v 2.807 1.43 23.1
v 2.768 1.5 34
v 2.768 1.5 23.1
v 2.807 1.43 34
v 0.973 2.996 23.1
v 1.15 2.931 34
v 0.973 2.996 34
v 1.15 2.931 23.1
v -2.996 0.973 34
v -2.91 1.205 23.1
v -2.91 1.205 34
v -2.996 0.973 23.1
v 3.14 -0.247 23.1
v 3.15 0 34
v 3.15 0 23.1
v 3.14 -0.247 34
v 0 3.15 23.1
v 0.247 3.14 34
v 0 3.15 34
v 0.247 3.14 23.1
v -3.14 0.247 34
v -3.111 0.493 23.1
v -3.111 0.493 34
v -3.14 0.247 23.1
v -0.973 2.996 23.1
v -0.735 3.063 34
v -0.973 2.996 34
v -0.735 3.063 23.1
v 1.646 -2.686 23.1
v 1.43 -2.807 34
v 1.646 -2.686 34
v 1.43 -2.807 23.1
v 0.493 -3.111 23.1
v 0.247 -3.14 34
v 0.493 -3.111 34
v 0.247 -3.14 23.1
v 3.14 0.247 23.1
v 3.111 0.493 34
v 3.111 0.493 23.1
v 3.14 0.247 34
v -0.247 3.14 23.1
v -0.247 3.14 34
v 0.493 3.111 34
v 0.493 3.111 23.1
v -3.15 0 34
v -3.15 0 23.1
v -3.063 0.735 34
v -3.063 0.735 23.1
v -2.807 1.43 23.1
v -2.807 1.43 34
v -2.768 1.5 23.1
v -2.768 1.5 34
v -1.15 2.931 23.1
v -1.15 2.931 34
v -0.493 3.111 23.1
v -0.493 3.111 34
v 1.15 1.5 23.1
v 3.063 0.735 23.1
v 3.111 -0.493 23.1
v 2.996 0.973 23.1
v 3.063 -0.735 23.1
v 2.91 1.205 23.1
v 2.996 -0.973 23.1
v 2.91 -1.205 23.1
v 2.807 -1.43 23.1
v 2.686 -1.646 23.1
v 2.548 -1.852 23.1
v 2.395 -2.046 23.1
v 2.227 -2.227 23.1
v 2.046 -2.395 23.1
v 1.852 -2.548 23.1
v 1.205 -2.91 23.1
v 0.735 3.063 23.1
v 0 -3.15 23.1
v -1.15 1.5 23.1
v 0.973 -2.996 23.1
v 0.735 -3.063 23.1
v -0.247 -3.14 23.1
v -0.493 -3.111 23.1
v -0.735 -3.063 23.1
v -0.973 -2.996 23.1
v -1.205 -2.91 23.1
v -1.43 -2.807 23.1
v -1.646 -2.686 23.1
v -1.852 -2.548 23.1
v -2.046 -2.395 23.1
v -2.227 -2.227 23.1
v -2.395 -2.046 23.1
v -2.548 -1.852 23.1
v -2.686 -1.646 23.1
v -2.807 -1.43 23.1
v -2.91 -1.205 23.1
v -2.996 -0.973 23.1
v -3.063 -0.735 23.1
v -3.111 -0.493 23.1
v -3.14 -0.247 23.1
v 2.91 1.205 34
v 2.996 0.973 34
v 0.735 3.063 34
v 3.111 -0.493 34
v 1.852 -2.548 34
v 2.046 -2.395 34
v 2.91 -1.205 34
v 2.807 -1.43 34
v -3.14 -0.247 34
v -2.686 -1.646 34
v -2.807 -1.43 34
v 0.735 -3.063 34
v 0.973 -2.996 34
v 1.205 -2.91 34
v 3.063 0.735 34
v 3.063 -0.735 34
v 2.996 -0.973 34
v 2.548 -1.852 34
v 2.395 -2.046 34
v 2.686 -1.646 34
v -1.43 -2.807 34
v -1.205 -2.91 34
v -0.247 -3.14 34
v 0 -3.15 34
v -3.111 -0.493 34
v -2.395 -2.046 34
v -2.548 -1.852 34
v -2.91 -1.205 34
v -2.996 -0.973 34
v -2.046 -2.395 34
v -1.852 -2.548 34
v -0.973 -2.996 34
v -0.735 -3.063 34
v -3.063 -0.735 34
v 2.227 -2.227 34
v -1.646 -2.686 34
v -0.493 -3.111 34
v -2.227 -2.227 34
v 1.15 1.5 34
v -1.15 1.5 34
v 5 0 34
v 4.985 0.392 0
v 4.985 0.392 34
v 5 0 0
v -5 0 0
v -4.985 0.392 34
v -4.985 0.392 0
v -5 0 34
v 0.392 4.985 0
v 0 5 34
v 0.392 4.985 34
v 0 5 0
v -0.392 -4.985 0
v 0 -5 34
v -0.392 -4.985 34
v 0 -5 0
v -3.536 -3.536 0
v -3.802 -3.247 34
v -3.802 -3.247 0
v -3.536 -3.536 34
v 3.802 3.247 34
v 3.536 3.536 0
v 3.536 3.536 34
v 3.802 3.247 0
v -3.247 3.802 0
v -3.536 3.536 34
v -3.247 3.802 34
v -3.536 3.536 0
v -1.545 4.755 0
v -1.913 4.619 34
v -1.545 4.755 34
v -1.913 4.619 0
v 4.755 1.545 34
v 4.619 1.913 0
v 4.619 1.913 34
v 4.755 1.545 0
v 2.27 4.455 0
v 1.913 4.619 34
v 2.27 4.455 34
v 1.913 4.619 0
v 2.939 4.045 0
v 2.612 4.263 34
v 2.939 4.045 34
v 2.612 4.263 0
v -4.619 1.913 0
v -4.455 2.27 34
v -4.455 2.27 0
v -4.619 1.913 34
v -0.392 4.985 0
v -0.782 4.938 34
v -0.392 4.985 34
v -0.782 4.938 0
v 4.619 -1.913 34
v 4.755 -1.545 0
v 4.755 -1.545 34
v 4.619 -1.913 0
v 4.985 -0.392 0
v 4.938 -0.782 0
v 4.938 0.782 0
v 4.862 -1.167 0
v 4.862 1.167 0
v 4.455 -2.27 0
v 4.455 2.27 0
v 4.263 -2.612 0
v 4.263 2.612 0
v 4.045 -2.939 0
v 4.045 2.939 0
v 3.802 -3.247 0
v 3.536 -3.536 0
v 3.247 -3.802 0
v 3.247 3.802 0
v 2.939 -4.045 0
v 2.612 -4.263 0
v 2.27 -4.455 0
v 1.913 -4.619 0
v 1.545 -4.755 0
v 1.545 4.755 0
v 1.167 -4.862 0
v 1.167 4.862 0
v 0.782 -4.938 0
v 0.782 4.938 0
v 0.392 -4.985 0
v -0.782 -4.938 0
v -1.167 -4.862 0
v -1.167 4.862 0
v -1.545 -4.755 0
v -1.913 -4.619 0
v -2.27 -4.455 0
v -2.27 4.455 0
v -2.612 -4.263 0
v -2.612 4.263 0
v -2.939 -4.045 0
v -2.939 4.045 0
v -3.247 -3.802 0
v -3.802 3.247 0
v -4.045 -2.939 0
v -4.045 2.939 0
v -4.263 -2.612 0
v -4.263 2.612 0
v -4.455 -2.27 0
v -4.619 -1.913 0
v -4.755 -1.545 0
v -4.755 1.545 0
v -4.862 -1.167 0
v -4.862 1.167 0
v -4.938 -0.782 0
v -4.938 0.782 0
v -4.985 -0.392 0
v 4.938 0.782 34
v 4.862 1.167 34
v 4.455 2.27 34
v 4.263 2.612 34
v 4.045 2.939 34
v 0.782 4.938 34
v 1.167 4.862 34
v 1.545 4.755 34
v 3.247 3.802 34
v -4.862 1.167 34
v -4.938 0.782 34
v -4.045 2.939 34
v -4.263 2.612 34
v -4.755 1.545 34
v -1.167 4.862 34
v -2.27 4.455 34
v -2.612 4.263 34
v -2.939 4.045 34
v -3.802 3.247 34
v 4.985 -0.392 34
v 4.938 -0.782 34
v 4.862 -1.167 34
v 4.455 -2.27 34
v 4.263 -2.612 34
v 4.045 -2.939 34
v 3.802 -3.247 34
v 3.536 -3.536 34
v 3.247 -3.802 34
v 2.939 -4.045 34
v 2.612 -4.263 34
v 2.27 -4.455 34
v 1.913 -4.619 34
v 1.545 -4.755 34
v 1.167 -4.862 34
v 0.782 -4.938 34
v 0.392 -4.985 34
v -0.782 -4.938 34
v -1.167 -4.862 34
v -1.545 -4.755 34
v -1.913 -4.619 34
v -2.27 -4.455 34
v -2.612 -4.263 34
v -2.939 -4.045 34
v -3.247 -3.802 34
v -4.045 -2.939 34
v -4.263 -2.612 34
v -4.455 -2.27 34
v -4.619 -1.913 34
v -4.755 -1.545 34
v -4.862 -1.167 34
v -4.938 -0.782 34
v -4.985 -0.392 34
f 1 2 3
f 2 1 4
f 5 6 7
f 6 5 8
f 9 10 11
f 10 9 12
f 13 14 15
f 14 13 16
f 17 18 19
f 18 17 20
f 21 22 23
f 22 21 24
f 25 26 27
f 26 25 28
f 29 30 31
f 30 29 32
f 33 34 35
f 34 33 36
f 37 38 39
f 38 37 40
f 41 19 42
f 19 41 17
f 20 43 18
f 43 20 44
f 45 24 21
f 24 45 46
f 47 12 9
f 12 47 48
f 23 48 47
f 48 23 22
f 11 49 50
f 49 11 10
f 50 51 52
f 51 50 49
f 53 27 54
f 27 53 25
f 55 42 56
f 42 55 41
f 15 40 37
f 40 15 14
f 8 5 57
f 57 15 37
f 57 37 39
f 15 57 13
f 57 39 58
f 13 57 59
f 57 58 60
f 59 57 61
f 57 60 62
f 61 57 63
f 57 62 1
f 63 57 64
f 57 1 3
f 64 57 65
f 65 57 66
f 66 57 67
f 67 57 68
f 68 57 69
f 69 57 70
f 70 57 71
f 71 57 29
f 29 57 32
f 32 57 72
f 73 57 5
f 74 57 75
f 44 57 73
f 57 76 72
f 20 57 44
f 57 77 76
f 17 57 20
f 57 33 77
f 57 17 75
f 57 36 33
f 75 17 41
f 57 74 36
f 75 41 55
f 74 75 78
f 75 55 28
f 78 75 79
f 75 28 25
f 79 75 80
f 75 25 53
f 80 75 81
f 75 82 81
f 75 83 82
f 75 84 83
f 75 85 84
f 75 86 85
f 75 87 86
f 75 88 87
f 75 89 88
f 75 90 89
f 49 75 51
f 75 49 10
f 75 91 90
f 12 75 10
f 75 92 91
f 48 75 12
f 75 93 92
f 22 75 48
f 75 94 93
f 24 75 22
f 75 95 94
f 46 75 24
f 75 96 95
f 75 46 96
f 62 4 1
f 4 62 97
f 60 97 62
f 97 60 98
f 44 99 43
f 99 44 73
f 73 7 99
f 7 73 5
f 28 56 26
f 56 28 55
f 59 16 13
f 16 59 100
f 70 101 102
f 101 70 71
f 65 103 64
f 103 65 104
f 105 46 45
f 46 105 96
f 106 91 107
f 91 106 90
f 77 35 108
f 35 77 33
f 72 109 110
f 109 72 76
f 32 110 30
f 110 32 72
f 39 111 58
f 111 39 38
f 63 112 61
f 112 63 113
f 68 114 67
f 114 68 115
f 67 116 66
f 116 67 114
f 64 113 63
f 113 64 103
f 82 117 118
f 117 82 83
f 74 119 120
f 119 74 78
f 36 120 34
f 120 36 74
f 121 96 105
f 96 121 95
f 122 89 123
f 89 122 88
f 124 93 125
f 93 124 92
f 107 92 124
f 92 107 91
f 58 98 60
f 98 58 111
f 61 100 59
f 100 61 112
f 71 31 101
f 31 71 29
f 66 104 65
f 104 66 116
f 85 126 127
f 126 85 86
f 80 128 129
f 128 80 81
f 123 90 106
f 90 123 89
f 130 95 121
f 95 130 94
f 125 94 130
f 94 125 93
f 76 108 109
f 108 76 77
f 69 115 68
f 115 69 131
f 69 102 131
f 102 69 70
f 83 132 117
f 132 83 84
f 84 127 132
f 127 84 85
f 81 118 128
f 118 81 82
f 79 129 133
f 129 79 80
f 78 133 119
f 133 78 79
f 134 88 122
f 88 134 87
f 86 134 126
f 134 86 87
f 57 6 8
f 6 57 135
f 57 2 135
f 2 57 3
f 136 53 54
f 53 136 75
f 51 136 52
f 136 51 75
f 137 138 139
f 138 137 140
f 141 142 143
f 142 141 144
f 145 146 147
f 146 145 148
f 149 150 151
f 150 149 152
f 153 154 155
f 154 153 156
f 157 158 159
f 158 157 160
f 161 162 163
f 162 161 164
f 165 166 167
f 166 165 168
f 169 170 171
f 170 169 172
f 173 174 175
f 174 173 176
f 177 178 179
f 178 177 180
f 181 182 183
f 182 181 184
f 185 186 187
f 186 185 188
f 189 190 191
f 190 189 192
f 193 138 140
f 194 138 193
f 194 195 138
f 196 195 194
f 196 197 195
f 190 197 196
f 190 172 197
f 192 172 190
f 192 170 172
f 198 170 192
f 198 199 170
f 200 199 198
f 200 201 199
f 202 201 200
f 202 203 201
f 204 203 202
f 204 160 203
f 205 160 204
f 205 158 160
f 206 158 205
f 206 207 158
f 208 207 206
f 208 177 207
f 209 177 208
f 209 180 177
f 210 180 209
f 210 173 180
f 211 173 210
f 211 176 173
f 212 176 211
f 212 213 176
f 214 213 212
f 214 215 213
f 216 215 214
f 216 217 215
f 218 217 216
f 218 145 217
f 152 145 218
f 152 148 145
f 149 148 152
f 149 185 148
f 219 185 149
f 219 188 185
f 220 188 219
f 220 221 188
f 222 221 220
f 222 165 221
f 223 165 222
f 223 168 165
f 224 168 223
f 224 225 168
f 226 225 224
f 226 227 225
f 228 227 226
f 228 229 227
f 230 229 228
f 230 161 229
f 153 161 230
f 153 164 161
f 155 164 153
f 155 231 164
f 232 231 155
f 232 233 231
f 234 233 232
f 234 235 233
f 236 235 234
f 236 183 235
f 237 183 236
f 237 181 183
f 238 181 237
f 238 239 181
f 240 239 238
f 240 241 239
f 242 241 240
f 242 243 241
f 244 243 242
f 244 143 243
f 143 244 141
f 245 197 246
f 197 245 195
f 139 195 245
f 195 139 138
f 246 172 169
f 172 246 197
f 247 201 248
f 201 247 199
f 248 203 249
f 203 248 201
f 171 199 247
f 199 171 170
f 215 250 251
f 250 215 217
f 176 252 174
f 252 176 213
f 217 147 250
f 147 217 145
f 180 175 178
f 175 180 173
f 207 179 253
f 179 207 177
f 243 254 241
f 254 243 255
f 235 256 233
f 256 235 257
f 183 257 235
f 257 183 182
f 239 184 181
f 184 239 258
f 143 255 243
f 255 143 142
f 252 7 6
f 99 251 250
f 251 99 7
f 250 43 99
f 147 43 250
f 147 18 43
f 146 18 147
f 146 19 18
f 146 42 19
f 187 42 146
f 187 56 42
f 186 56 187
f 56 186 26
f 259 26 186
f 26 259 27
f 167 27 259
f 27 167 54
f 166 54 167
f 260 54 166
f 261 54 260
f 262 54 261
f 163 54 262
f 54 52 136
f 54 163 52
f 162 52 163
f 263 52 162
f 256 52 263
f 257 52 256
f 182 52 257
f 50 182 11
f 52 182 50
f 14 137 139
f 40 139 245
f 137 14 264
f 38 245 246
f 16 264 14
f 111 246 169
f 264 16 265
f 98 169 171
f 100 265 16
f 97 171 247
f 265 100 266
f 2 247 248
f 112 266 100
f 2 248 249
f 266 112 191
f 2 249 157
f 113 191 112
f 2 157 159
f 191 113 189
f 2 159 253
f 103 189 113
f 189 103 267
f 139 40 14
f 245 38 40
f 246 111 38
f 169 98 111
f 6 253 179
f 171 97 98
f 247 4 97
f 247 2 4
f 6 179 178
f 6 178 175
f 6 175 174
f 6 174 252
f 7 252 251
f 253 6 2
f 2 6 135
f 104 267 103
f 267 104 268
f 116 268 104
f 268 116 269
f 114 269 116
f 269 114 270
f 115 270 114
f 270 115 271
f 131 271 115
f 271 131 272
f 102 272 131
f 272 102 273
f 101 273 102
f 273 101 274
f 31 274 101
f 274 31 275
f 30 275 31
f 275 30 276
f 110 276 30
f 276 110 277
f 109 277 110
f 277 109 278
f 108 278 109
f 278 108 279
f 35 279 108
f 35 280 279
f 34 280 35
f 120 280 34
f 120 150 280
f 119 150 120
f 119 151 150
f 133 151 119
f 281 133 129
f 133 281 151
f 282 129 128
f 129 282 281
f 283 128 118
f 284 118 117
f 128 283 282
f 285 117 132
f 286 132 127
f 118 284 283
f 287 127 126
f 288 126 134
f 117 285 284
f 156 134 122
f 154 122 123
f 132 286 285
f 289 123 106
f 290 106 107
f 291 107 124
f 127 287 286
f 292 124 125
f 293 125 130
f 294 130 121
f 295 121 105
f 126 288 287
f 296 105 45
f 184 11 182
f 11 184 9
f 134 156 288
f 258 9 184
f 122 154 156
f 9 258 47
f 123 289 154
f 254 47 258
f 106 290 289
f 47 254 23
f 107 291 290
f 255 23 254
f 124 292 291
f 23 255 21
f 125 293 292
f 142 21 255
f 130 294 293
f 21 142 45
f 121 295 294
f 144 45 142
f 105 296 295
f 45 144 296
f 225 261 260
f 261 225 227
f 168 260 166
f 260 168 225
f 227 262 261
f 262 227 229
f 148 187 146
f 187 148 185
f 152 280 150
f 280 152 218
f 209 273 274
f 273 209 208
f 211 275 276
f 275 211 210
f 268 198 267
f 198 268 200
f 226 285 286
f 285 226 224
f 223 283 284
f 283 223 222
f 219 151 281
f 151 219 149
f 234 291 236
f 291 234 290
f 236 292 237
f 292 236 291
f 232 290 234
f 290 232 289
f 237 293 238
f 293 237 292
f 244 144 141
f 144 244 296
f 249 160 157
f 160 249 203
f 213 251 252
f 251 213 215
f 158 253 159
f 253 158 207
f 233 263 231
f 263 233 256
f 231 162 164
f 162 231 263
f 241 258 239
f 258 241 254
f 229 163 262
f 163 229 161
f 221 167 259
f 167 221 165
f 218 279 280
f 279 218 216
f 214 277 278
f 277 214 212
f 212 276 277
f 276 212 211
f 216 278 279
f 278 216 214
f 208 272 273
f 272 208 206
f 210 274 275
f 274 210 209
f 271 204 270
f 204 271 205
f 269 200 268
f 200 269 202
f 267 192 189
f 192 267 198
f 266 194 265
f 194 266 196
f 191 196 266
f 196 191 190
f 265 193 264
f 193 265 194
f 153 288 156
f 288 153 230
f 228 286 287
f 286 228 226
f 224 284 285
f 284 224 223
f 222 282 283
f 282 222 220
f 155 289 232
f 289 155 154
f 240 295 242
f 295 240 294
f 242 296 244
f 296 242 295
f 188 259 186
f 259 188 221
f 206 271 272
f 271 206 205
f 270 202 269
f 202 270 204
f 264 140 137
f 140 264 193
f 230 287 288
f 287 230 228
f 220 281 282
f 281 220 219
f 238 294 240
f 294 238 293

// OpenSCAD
$fn = 80;

difference() {
// cylinder outer dimension
cylinder(h=34, d=10);

// center cutout
translate([0,0,23.1])
difference() {
cylinder(h=11, d=6.3);

translate([1.15,1.5,0])
    cube([4,4,11.1]);
    
translate([-5.15,1.5,0])
    cube([4,4,11.1]);
}

}
